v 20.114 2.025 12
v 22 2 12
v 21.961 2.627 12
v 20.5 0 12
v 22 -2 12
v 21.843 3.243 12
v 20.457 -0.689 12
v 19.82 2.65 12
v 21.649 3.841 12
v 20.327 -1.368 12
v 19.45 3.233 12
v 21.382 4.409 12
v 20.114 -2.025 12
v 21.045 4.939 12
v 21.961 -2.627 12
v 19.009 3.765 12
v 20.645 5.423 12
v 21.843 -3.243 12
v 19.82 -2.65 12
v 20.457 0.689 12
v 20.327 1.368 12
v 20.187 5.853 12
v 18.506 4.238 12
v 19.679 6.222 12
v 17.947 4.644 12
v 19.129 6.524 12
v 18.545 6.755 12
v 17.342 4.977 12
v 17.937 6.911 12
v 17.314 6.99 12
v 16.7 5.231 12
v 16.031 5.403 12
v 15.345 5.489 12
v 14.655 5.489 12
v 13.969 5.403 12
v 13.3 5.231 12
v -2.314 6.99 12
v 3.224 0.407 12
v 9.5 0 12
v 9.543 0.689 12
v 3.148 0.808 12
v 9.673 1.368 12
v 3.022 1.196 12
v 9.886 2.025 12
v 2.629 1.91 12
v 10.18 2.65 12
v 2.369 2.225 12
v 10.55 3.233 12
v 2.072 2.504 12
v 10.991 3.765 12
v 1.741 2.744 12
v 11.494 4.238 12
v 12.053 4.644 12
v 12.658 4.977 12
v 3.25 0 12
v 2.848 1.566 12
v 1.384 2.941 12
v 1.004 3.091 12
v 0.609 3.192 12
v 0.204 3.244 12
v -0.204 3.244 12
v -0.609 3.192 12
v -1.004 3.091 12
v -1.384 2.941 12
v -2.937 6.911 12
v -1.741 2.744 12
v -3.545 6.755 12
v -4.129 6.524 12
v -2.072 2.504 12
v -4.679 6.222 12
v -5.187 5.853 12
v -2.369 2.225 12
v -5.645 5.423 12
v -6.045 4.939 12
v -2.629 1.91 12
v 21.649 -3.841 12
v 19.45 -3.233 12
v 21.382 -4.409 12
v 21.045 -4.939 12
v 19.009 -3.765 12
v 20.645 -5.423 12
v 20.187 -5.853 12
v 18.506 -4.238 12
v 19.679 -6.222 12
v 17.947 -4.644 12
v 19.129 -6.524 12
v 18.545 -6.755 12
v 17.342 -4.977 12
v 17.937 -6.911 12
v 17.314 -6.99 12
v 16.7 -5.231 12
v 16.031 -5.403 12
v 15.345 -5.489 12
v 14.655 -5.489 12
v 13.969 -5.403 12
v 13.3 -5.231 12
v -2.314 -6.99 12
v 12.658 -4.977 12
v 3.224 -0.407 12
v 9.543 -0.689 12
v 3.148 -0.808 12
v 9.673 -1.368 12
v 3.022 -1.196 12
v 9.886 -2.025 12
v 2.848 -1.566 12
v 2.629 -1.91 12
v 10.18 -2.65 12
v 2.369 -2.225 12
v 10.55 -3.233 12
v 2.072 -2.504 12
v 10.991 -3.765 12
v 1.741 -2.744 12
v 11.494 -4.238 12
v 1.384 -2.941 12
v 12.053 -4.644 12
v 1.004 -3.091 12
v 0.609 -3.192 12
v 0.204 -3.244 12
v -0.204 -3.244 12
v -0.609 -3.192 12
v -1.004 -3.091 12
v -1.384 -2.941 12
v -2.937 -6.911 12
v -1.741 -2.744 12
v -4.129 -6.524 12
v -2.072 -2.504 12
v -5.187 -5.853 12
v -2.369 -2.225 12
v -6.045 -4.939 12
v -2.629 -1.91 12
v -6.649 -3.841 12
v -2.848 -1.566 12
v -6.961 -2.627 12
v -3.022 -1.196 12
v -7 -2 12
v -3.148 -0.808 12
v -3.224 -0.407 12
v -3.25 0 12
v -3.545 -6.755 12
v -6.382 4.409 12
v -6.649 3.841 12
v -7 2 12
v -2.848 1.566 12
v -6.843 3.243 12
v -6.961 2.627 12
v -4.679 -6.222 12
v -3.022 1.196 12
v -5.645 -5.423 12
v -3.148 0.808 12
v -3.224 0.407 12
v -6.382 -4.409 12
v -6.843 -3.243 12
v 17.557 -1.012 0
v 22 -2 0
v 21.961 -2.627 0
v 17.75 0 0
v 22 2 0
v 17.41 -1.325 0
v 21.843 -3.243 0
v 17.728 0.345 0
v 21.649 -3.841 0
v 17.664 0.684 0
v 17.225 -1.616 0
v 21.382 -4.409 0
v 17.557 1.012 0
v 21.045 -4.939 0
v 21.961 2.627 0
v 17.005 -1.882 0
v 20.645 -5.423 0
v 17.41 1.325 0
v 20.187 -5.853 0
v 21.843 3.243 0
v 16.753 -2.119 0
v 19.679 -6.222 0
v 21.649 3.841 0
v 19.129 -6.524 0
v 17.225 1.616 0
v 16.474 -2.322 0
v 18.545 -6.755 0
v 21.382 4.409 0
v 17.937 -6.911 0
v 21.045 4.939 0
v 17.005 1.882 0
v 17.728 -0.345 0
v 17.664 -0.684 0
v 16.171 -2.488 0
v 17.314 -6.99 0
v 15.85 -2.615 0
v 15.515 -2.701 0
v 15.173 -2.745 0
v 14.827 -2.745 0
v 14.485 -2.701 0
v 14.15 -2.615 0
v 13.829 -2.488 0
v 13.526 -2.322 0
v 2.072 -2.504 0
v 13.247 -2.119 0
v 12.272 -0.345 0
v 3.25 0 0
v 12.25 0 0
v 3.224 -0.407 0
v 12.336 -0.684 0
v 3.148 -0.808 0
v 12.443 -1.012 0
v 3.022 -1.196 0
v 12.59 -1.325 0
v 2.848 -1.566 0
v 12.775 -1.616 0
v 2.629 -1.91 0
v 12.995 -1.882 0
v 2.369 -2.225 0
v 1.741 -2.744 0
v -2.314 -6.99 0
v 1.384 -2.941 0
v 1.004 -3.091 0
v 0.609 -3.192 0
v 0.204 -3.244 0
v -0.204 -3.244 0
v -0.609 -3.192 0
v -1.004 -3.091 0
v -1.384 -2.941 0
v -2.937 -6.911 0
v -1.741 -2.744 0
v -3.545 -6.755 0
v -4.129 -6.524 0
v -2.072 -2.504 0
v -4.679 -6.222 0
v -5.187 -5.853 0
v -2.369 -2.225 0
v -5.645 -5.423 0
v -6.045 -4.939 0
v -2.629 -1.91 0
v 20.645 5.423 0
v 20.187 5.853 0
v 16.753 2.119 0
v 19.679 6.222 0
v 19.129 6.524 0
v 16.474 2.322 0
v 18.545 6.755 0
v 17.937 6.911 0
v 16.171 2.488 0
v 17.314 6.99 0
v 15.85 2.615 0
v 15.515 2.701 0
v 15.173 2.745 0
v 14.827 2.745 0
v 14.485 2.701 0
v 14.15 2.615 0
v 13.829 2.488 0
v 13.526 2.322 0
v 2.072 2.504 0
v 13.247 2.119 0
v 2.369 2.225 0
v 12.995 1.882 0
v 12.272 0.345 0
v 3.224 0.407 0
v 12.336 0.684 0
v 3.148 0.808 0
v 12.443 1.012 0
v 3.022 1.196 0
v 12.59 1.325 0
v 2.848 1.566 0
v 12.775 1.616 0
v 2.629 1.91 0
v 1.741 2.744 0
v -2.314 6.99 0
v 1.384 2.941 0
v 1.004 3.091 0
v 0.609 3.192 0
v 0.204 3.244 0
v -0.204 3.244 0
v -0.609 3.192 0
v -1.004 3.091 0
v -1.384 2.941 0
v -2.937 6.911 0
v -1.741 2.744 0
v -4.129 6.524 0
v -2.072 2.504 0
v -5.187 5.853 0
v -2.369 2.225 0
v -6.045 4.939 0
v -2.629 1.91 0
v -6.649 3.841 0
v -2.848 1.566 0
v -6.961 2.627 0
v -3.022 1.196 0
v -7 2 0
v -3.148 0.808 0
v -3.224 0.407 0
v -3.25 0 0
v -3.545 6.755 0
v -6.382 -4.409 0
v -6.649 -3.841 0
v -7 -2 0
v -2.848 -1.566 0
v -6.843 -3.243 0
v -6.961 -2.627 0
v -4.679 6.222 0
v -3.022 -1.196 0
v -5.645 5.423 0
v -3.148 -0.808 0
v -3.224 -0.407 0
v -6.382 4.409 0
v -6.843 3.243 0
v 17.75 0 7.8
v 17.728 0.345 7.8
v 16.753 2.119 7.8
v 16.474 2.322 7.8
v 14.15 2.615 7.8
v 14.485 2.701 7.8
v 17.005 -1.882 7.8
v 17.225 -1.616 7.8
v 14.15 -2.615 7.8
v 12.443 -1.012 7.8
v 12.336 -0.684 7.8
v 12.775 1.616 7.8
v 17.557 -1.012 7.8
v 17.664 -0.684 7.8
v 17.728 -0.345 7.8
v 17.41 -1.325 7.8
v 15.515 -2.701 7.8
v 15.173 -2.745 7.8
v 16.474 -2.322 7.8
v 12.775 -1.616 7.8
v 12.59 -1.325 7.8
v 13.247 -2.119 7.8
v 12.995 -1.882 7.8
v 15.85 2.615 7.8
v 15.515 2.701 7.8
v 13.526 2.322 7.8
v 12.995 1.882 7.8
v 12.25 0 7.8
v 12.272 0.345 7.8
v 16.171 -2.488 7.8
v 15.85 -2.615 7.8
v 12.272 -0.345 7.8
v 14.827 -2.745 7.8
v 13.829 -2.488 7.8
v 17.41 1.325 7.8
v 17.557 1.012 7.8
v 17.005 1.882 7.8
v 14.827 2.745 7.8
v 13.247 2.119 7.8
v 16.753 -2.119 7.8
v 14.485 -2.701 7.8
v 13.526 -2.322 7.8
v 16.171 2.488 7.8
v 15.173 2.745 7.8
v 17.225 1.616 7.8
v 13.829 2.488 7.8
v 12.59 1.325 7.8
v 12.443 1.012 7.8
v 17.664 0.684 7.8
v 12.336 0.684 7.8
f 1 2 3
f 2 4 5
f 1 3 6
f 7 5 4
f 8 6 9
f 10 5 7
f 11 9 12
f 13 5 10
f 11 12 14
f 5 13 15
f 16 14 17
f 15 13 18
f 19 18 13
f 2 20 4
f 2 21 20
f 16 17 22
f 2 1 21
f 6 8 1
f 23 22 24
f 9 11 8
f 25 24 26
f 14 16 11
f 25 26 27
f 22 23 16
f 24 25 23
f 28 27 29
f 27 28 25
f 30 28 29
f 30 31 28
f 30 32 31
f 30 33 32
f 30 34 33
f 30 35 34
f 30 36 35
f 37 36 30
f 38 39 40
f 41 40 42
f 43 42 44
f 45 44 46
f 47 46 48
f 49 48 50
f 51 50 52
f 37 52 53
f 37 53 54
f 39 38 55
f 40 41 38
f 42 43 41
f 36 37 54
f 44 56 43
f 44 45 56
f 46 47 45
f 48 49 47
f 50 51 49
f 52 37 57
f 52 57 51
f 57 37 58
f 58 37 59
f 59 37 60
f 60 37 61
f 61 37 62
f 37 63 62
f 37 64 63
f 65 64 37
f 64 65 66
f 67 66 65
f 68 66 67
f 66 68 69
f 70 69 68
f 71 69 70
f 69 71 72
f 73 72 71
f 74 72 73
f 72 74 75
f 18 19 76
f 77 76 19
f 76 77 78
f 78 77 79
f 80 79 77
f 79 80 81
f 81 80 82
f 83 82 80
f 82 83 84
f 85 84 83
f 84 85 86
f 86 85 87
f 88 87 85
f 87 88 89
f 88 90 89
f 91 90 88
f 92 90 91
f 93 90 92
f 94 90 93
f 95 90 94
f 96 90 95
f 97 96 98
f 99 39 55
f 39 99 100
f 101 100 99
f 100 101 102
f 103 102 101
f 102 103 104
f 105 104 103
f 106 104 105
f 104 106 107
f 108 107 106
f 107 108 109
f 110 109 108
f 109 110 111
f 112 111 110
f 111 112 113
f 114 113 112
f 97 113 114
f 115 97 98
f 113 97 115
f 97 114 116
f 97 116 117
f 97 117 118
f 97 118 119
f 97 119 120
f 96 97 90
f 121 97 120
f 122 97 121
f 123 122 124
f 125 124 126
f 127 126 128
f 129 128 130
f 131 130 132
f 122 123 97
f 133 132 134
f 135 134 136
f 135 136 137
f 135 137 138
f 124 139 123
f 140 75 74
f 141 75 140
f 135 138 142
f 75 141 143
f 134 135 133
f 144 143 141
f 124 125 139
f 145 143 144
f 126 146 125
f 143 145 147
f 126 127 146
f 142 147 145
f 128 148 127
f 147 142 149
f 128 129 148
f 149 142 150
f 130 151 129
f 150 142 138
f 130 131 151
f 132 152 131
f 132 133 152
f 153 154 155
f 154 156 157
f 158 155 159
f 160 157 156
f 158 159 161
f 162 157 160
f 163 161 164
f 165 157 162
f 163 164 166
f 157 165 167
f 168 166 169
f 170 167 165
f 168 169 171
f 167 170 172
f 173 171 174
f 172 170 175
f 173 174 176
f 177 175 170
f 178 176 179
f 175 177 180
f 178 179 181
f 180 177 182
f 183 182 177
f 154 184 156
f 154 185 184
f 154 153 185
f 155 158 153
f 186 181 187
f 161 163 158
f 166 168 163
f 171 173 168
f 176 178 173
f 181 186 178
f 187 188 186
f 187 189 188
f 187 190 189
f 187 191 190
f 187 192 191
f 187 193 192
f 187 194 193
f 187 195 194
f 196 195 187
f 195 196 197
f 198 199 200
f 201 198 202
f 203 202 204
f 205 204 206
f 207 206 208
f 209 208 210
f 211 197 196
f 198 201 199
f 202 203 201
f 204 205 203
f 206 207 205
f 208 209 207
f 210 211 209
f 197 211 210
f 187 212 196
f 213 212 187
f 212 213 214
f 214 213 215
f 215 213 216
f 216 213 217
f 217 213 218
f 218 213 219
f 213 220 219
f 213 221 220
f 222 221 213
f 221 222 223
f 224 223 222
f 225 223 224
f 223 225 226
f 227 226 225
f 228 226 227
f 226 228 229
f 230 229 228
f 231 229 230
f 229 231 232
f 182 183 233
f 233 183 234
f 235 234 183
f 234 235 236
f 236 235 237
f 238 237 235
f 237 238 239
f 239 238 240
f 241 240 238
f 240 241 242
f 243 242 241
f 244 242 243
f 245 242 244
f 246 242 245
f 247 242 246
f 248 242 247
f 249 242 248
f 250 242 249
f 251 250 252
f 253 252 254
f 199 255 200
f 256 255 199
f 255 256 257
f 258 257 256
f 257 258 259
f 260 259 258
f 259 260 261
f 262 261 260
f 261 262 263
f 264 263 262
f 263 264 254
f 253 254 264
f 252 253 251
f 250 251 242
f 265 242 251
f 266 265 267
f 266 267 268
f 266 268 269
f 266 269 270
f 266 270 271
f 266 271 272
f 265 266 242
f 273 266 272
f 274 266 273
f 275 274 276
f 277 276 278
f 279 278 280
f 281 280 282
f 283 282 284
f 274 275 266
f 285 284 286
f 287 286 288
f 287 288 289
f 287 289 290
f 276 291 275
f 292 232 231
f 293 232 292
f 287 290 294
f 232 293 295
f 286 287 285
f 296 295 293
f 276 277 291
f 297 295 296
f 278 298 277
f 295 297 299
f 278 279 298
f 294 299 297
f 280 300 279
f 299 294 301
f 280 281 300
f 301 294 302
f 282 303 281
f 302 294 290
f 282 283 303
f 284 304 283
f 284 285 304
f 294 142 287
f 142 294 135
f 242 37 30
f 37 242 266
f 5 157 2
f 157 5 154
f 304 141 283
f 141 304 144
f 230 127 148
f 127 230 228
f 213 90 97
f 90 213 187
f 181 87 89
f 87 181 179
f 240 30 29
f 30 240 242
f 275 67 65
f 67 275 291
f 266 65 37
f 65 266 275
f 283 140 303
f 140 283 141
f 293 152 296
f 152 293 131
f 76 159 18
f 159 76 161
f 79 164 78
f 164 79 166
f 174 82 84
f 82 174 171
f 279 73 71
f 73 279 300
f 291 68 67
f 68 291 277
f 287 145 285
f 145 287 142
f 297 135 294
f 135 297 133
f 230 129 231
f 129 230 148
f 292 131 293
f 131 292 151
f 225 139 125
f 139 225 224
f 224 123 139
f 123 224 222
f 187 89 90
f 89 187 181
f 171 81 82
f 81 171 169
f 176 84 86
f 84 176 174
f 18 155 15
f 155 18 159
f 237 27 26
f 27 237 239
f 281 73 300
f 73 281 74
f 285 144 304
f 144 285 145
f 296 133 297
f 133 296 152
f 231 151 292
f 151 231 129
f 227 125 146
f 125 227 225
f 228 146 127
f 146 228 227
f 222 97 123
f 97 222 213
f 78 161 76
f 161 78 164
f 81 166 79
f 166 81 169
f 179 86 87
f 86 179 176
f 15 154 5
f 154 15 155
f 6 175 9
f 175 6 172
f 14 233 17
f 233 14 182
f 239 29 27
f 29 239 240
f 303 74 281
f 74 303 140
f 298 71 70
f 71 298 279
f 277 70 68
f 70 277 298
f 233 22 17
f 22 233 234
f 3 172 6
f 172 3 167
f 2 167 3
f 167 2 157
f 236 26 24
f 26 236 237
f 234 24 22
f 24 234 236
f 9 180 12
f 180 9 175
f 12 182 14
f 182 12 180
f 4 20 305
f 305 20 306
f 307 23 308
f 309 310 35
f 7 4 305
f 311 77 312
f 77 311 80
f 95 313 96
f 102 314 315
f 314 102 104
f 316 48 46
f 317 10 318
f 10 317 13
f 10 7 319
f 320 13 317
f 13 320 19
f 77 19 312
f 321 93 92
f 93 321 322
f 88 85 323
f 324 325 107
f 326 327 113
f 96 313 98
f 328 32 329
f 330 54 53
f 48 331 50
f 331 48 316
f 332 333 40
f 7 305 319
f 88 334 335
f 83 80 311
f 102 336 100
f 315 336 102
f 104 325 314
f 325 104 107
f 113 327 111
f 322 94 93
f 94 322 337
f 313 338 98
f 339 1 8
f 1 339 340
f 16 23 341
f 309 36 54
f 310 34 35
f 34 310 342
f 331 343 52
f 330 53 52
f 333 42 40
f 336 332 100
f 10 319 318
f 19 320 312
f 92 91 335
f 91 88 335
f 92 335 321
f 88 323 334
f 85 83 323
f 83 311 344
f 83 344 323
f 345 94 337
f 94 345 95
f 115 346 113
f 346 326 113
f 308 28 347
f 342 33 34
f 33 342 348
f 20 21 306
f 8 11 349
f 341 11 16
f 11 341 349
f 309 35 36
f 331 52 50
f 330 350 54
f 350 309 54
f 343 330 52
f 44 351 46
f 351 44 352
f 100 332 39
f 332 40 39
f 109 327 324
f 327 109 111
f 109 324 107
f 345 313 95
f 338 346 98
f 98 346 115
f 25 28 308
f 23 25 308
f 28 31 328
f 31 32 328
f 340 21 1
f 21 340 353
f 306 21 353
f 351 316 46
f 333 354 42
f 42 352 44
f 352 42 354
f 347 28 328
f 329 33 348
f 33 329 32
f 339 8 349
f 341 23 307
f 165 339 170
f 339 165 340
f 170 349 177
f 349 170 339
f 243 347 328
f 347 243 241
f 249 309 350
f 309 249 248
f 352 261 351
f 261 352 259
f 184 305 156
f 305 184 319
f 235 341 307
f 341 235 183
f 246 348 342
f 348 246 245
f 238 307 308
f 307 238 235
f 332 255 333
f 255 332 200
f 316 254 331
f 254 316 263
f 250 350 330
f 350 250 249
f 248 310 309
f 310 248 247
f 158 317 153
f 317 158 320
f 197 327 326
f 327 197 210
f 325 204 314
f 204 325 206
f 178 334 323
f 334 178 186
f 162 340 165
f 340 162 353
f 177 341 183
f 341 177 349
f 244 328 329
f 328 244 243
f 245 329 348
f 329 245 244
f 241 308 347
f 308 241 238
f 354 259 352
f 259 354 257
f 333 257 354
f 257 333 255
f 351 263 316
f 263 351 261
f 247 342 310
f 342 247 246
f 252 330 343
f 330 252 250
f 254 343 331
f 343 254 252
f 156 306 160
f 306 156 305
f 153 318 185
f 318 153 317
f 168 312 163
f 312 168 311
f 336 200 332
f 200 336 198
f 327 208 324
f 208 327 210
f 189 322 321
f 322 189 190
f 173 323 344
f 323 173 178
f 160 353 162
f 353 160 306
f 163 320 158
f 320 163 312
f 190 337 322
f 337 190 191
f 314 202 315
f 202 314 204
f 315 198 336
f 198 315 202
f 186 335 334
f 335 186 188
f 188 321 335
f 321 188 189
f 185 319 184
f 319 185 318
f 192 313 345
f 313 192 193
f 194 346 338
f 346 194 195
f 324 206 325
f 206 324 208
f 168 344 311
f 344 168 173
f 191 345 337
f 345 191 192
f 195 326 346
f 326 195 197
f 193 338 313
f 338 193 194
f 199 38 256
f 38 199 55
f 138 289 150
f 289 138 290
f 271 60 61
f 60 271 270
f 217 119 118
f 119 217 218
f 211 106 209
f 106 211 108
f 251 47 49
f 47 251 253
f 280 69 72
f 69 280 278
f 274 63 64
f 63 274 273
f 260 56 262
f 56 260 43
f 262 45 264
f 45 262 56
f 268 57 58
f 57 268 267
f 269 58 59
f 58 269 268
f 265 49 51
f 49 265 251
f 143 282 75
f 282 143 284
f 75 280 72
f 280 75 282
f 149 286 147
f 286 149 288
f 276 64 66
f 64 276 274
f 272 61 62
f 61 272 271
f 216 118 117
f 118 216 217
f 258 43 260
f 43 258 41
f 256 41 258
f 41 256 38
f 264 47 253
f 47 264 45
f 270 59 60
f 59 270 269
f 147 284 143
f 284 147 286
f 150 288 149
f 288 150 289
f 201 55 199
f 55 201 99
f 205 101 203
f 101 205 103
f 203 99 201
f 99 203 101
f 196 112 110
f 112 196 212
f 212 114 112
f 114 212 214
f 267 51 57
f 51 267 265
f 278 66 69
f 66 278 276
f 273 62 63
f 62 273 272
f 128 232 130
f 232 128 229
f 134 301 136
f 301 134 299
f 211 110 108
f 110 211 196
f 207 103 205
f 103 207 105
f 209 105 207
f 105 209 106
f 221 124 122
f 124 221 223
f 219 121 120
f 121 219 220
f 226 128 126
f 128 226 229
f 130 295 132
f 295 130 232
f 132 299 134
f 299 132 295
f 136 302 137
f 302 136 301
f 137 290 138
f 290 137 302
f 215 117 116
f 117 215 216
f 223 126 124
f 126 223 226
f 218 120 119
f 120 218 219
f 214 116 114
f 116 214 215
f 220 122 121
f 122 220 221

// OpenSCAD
$fn = 50;


difference() {
	union() {
		cylinder(h = 12, r = 7.0000000000);
		translate(v = [7.5000000000, 0.0000000000, 0]) {
			hull() {
				translate(v = [-9.5000000000, 2.0000000000, 0]) {
					cylinder(h = 12, r = 5);
				}
				translate(v = [9.5000000000, 2.0000000000, 0]) {
					cylinder(h = 12, r = 5);
				}
				translate(v = [-9.5000000000, -2.0000000000, 0]) {
					cylinder(h = 12, r = 5);
				}
				translate(v = [9.5000000000, -2.0000000000, 0]) {
					cylinder(h = 12, r = 5);
				}
			}
		}
		translate(v = [7.5000000000, 0.0000000000, 0]) {
			hull() {
				translate(v = [-9.5000000000, 2.0000000000, 0]) {
					cylinder(h = 12, r = 5);
				}
				translate(v = [9.5000000000, 2.0000000000, 0]) {
					cylinder(h = 12, r = 5);
				}
				translate(v = [-9.5000000000, -2.0000000000, 0]) {
					cylinder(h = 12, r = 5);
				}
				translate(v = [9.5000000000, -2.0000000000, 0]) {
					cylinder(h = 12, r = 5);
				}
			}
		}
	}
	union() {
		translate(v = [15.0000000000, 0.0000000000, 12]) {
			rotate(a = [0, 0, 0]) {
				difference() {
					union() {
						#translate(v = [0, 0, -12.0000000000]) {
							cylinder(h = 12, r = 2.2500000000);
						}
						#translate(v = [0, 0, -4.2000000000]) {
							cylinder(h = 4.2000000000, r1 = 2.7500000000, r2 = 5.5000000000);
						}
						#translate(v = [0, 0, -12.0000000000]) {
							cylinder(h = 12, r = 2.7500000000);
						}
						#translate(v = [0, 0, -12.0000000000]) {
							cylinder(h = 12, r = 2.2500000000);
						}
					}
					union();
				}
			}
		}
		translate(v = [15.0000000000, 0.0000000000, 12]) {
			rotate(a = [0, 0, 0]) {
				difference() {
					union() {
						#translate(v = [0, 0, -12.0000000000]) {
							cylinder(h = 12, r = 2.2500000000);
						}
						#translate(v = [0, 0, -4.2000000000]) {
							cylinder(h = 4.2000000000, r1 = 2.7500000000, r2 = 5.5000000000);
						}
						#translate(v = [0, 0, -12.0000000000]) {
							cylinder(h = 12, r = 2.7500000000);
						}
						#translate(v = [0, 0, -12.0000000000]) {
							cylinder(h = 12, r = 2.2500000000);
						}
					}
					union();
				}
			}
		}
		translate(v = [0, 0, -100]) {
			cylinder(h = 200, r = 3.2500000000);
		}
		translate(v = [0, 0, -100]) {
			cylinder(h = 200, r = 1.8000000000);
		}
	}
}
